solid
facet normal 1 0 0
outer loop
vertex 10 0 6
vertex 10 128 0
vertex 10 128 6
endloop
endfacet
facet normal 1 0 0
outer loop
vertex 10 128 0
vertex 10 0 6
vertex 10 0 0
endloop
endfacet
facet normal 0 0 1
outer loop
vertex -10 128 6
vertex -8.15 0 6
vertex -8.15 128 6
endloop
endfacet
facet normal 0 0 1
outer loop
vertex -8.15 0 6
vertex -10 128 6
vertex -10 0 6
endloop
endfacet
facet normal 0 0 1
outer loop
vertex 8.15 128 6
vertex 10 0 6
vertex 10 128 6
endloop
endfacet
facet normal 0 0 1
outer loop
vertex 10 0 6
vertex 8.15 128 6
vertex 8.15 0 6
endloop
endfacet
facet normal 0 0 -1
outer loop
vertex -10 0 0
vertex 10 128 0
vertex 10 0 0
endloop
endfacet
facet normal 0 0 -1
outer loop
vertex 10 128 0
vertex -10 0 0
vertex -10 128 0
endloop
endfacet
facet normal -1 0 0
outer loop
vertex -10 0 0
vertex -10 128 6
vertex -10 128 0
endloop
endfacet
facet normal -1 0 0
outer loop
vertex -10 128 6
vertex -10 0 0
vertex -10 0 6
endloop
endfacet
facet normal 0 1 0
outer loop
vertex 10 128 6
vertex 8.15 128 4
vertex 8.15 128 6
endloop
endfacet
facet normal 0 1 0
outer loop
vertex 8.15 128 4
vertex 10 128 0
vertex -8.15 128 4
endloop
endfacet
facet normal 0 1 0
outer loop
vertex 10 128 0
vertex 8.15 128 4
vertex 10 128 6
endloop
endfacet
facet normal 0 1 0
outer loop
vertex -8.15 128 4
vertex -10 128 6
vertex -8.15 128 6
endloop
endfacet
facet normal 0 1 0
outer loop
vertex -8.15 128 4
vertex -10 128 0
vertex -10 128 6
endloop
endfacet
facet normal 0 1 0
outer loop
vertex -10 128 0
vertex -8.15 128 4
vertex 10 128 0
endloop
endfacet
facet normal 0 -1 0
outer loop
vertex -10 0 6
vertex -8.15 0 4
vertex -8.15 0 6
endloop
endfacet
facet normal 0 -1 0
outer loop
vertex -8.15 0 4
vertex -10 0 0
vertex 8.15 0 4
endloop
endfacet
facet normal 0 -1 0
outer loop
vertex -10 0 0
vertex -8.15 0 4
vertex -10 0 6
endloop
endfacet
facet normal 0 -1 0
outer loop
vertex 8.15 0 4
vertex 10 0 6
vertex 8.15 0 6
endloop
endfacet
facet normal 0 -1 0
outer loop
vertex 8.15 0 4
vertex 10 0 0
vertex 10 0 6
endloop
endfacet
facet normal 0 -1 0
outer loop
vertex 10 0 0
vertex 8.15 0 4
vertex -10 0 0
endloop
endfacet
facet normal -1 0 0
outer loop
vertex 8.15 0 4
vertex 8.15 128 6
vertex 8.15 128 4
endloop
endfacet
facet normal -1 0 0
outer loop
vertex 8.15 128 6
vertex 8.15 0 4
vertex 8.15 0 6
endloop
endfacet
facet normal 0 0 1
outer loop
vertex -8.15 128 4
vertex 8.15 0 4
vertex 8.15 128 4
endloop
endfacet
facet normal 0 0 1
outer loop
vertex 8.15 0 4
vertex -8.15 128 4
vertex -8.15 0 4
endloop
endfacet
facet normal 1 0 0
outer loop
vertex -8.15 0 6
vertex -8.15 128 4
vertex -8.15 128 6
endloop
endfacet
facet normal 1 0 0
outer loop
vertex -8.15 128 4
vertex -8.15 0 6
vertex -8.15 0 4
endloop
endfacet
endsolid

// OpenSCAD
// Simple U-shaped cradle that goes under the 128 mm slide pot.
// 20 mm wide, 4 mm thick bottom, sides stand 2 mm up from the bottom.
// Render:  openscad -o pot_cradle.stl pot_cradle.scad

/* [Cradle] */
// Outside width (mm)
width = 20;
// Bottom thickness (mm)
base_t = 4;
// How far the sides stand up above the bottom (mm)
side_h = 2;
// Length (mm). 128 = same as the pot body
length = 128;
// Pot body width + clearance (mm). Fielect 128 mm pot is 15.7 wide
pot_w = 15.7;
clearance = 0.3;

inner = pot_w + 2 * clearance;
wall = (width - inner) / 2;
assert(wall > 0.8, "Width too small for the pot");

// Lies on its bottom, length along y
difference() {
    translate([-width / 2, 0, 0]) cube([width, length, base_t + side_h]);
    translate([-inner / 2, -1, base_t]) cube([inner, length + 2, side_h + 1]);
}

echo(str("pot cradle: ", width, " x ", length, " mm, ", base_t + side_h, " mm tall; inside ", inner, " mm, side walls ", wall, " mm"));
